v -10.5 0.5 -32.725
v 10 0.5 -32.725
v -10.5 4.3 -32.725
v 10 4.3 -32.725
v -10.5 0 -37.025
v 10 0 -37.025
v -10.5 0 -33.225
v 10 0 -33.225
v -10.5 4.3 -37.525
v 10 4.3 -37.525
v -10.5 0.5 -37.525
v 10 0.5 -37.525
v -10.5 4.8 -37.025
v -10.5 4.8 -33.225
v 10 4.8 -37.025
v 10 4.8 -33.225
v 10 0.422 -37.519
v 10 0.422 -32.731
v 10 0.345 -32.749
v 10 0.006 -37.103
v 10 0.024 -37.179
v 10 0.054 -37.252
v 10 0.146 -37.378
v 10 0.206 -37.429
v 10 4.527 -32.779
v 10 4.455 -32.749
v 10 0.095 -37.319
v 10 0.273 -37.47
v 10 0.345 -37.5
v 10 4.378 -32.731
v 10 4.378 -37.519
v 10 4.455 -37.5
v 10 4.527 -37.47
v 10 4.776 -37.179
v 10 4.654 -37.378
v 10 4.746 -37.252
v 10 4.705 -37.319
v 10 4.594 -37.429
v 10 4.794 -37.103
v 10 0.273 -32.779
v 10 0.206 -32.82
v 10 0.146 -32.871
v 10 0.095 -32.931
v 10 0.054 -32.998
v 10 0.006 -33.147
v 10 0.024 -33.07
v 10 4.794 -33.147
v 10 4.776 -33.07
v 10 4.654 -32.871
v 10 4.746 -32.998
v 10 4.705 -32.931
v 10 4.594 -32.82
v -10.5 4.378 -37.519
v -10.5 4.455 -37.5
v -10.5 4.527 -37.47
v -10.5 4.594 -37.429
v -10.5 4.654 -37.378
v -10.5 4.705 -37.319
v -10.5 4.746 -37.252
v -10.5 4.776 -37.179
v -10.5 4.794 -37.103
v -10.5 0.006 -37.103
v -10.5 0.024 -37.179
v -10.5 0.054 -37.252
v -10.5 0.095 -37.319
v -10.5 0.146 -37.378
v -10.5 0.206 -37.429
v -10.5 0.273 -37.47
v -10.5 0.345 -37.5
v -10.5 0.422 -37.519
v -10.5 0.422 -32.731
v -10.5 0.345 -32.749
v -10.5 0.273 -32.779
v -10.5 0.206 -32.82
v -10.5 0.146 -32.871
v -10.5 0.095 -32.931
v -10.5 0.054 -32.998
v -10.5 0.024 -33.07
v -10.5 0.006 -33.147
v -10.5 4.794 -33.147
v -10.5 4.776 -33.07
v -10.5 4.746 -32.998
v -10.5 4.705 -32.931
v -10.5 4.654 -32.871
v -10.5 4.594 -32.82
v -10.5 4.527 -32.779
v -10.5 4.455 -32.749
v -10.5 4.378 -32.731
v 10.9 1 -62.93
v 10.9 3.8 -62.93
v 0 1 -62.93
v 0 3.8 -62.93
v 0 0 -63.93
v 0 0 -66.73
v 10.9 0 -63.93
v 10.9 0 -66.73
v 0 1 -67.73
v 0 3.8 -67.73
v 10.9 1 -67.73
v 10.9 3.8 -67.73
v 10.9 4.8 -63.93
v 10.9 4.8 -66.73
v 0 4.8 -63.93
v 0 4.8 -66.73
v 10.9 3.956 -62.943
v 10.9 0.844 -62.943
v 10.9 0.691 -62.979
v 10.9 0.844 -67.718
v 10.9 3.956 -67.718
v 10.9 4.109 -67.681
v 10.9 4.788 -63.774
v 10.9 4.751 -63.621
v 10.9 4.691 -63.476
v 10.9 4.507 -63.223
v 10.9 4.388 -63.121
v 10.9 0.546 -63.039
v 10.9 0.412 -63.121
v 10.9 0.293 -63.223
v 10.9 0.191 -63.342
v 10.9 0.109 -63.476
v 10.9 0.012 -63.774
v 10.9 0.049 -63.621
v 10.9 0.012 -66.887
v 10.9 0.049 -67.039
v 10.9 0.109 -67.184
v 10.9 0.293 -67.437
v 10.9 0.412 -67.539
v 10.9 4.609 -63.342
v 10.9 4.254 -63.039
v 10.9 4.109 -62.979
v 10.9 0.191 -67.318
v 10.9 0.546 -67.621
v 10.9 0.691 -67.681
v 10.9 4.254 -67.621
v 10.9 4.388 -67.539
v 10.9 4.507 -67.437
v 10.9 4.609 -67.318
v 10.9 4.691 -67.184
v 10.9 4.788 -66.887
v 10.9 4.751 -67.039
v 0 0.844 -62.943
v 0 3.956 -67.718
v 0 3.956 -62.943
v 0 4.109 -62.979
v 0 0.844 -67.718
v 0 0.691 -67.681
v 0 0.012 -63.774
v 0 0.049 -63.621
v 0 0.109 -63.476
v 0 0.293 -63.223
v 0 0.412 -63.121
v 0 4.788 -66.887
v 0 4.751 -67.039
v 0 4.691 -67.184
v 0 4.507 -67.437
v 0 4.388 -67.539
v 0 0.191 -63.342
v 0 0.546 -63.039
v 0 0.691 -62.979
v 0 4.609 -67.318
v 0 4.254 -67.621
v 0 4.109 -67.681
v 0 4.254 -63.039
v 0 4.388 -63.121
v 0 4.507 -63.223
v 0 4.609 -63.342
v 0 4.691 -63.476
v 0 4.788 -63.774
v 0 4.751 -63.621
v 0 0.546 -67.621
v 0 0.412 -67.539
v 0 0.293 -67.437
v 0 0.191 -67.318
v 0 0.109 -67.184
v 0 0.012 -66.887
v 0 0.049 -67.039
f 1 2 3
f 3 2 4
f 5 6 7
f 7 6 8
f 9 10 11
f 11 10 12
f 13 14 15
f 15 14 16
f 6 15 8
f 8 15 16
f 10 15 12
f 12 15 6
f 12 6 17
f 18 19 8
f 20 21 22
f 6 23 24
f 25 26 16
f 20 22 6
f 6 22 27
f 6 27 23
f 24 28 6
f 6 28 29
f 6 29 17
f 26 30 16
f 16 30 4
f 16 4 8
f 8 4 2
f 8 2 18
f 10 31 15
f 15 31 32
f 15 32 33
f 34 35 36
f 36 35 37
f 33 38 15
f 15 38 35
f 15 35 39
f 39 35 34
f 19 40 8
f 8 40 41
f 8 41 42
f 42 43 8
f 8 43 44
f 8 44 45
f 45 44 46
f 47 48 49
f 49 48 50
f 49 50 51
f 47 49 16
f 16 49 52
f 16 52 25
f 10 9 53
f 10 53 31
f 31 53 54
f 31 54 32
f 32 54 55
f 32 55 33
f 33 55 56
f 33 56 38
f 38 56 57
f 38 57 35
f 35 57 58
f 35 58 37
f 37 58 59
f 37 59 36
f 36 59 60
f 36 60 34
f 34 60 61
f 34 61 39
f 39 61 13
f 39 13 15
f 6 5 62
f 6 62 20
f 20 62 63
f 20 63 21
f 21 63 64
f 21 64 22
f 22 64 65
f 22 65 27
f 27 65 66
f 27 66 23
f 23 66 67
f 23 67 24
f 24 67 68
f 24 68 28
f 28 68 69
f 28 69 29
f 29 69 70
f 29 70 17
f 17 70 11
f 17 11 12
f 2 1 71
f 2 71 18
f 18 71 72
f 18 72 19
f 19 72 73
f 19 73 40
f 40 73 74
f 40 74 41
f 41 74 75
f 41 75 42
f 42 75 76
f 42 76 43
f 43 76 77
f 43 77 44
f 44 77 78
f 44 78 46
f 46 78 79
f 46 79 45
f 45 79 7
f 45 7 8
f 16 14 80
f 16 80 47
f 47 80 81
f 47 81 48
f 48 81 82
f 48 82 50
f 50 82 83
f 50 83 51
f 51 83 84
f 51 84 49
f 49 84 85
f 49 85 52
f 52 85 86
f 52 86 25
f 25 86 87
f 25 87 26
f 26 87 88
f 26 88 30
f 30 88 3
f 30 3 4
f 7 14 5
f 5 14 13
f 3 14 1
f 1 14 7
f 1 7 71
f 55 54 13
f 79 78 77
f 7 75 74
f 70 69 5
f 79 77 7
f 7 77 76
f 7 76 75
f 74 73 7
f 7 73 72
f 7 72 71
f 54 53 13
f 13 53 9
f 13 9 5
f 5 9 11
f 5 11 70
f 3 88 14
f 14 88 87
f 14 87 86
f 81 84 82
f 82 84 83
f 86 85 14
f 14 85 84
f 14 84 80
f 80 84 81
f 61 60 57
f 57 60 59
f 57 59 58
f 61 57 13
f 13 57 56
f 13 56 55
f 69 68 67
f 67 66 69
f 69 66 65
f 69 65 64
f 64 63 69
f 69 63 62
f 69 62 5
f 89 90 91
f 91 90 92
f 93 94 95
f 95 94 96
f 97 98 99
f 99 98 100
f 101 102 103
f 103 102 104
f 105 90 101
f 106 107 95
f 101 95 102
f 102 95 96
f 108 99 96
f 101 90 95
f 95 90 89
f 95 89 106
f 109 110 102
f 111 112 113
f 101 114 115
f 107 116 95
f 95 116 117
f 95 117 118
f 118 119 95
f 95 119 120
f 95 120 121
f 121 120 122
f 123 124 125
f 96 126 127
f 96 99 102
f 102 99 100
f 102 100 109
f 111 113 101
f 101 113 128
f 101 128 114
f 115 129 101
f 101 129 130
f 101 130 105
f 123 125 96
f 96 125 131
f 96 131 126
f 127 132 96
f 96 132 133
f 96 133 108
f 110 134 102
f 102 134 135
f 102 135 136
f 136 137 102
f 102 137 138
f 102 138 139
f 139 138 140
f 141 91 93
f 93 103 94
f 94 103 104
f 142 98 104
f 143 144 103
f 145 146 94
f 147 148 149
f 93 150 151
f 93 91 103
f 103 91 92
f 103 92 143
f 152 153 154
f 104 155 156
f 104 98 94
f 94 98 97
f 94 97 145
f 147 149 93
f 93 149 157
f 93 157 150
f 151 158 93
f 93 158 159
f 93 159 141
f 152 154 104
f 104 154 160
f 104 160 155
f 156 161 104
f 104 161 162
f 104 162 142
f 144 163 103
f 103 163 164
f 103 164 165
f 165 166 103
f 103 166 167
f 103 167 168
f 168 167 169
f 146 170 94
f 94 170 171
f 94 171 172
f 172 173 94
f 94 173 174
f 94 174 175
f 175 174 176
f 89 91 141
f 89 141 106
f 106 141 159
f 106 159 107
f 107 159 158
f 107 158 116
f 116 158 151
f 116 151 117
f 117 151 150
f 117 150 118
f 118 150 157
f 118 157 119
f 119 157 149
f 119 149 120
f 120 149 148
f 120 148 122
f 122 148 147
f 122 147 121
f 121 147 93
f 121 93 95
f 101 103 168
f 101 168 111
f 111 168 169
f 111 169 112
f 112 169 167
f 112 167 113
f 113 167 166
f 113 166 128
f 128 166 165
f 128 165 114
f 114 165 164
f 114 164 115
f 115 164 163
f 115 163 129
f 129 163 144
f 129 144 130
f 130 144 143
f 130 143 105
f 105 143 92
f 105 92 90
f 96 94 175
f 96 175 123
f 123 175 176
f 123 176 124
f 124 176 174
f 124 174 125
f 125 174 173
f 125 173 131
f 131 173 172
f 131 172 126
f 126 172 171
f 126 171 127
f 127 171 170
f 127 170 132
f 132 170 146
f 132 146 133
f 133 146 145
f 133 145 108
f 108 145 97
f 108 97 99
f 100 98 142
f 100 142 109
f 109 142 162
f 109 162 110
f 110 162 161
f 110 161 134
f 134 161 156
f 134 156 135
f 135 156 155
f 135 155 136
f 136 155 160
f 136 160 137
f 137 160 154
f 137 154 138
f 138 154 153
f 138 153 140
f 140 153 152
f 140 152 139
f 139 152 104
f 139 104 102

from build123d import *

# Parameters (mm, degrees)
SKETCH_1_R          = 4.9
SKETCH_1_W          = 5
SKETCH_1_H          = 5
EXTRUDE_1_DEPTH     = 5
SKETCH_2_W          = 10
SKETCH_2_H          = 5
EXTRUDE_2_DEPTH     = 5
SKETCH_3_R          = 5.914940822
CUT_EXTRUDE_1_DEPTH = 10
CUT_EXTRUDE_2_DEPTH = 10
SKETCH_5_W          = 4.8
SKETCH_5_H          = 4.8
EXTRUDE_3_DEPTH     = 10
SKETCH_5_W_2        = 4.6
SKETCH_5_H_2        = 4.6
EXTRUDE_3_2_DEPTH   = 10
SKETCH_5_W_3        = 4.5
SKETCH_5_H_3        = 4.5
EXTRUDE_3_3_DEPTH   = 10
FILLET_1_R          = 0.5
FILLET_2_R          = 0.5
FILLET_3_R          = 0.5
FILLET_4_R          = 0.5
SKETCH_6_W          = 4.9
SKETCH_6_H          = 4.9
EXTRUDE_4_DEPTH     = 20.5
FILLET_5_R          = 1
EXTRUDE_5_DEPTH     = 10.5
SKETCH_9_R          = 3.402598628
CUT_EXTRUDE_3_DEPTH = 10.5
SKETCH_10_R         = 4.357418538
CUT_EXTRUDE_4_DEPTH = 10.5
SKETCH_11_R         = 4.197019633
CUT_EXTRUDE_5_DEPTH = 100.5
SKETCH_12_W         = 4.8
SKETCH_12_H         = 4.8
EXTRUDE_6_DEPTH     = 10.9
FILLET_6_R          = 1


with BuildPart() as part:
    # 草图1 → 凸台-拉伸1 (new body)
    with BuildSketch(Plane(origin=(0, 0, 0), x_dir=(1, 0, 0), z_dir=(0, 1, 0))):
        with Locations((-9.777161154, 17.932244479)):
            Circle(SKETCH_1_R)
        with Locations((-9.777161154, 17.932244479)):
            Rectangle(SKETCH_1_W, SKETCH_1_H, mode=Mode.SUBTRACT)
    extrude(amount=EXTRUDE_1_DEPTH)

    # 草图3 → 切除-拉伸1 (cut)
    with BuildSketch(Plane(origin=(0, 5, 0), x_dir=(1, 0, 0), z_dir=(0, 1, 0))):
        with Locations((-9.777161154, 17.932244479)):
            Circle(SKETCH_3_R)
    extrude(amount=-CUT_EXTRUDE_1_DEPTH, mode=Mode.SUBTRACT)


with BuildPart() as body_2:
    # 草图2 → 凸台-拉伸2 (new body)
    with BuildSketch(Plane(origin=(0, 0, 0), x_dir=(1, 0, 0), z_dir=(0, 1, 0))):
        with Locations((-15.49352073, 27.026927295)):
            Rectangle(SKETCH_2_W, SKETCH_2_H)
    extrude(amount=EXTRUDE_2_DEPTH)

    # 草图4 → 切除-拉伸2 (cut)
    with BuildSketch(Plane.ZY.offset(20.49352073)):
        Polygon((-29.526927295, 4.9), (-29.526927295, 5), (-24.526927295, 5), (-24.526927295, 0), (-24.626927295, 0), (-24.626927295, 4.9), align=None)
    extrude(amount=-CUT_EXTRUDE_2_DEPTH, mode=Mode.SUBTRACT)

    # 圆角1
    fillet_1_edges = [body_2.edges().sort_by_distance(p)[0] for p in [
        (-15.49352073, 0, -24.626927295),
        (-15.49352073, 4.9, -24.626927295),
        (-15.49352073, 4.9, -29.526927295),
        (-15.49352073, 0, -29.526927295),
    ]]
    fillet(fillet_1_edges, radius=FILLET_1_R)

    # 草图6 → 凸台-拉伸4 (add)
    with BuildSketch(Plane(origin=(-10.49352073, 0, 0), x_dir=(0, 0, -1), z_dir=(1, 0, 0))):
        with Locations((27.076927295, 2.45)):
            Rectangle(SKETCH_6_W, SKETCH_6_H)
    extrude(amount=EXTRUDE_4_DEPTH)

    # 圆角5
    fillet_5_edges = [body_2.edges().sort_by_distance(p)[0] for p in [
        (-0.24352073, 0, -24.626927295),
        (-0.24352073, 4.9, -29.526927295),
        (-0.24352073, 0, -29.526927295),
        (-0.24352073, 4.9, -24.626927295),
    ]]
    fillet(fillet_5_edges, radius=FILLET_5_R)

    # 草图11 → 切除-拉伸5 (cut)
    with BuildSketch(Plane.ZY.offset(20.49352073)):
        with Locations((-27.149876741, 2.428663145)):
            Circle(SKETCH_11_R)
    extrude(amount=-CUT_EXTRUDE_5_DEPTH, mode=Mode.SUBTRACT)


with BuildPart() as body_2_2:
    # 草图5 → 凸台-拉伸3 (new body)
    with BuildSketch(Plane(origin=(0, 0, 0), x_dir=(0, 0, -1), z_dir=(1, 0, 0))):
        with Locations((35.124788923, 2.4)):
            Rectangle(SKETCH_5_W, SKETCH_5_H)
    extrude(amount=EXTRUDE_3_DEPTH)

    # 圆角2
    fillet_2_edges = [body_2_2.edges().sort_by_distance(p)[0] for p in [
        (5, 4.8, -32.724788923),
        (5, 4.8, -37.524788923),
        (5, 0, -37.524788923),
        (5, 0, -32.724788923),
    ]]
    fillet(fillet_2_edges, radius=FILLET_2_R)

    # 草图8 → 凸台-拉伸5 (add)
    with BuildSketch(Plane.ZY):
        with BuildLine():
            Line((-33.224788923, 4.8), (-37.024788923, 4.8))
            ThreePointArc((-37.024788923, 4.8), (-37.378342314, 4.653553391), (-37.524788923, 4.3))
            Line((-37.524788923, 4.3), (-37.524788923, 0.5))
            ThreePointArc((-37.524788923, 0.5), (-37.378342314, 0.146446609), (-37.024788923, 0))
            Line((-37.024788923, 0), (-33.224788923, 0))
            ThreePointArc((-33.224788923, 0), (-32.871235532, 0.146446609), (-32.724788923, 0.5))
            Line((-32.724788923, 0.5), (-32.724788923, 4.3))
            ThreePointArc((-32.724788923, 4.3), (-32.871235532, 4.653553391), (-33.224788923, 4.8))
        make_face()
    extrude(amount=EXTRUDE_5_DEPTH)


with BuildPart() as body_3:
    # 草图5 → Extrude 3 2 (new body)
    with BuildSketch(Plane(origin=(0, 0, 0), x_dir=(0, 0, -1), z_dir=(1, 0, 0))):
        with Locations((43.904383403, 2.3)):
            Rectangle(SKETCH_5_W_2, SKETCH_5_H_2)
    extrude(amount=EXTRUDE_3_2_DEPTH)

    # 圆角3
    fillet_3_edges = [body_3.edges().sort_by_distance(p)[0] for p in [
        (5, 4.6, -41.604383403),
        (5, 4.6, -46.204383403),
        (5, 0, -46.204383403),
        (5, 0, -41.604383403),
    ]]
    fillet(fillet_3_edges, radius=FILLET_3_R)

    # 草图10 → 切除-拉伸4 (cut)
    with BuildSketch(Plane.ZY):
        with Locations((-43.711928748, 2.423135274)):
            Circle(SKETCH_10_R)
    extrude(amount=-CUT_EXTRUDE_4_DEPTH, mode=Mode.SUBTRACT)


with BuildPart() as body_4:
    # 草图5 → Extrude 3 3 (new body)
    with BuildSketch(Plane(origin=(0, 0, 0), x_dir=(0, 0, -1), z_dir=(1, 0, 0))):
        with Locations((50.920405069, 2.25)):
            Rectangle(SKETCH_5_W_3, SKETCH_5_H_3)
    extrude(amount=EXTRUDE_3_3_DEPTH)

    # 圆角4
    fillet_4_edges = [body_4.edges().sort_by_distance(p)[0] for p in [
        (5, 4.5, -48.670405069),
        (5, 4.5, -53.170405069),
        (5, 0, -53.170405069),
        (5, 0, -48.670405069),
    ]]
    fillet(fillet_4_edges, radius=FILLET_4_R)

    # 草图9 → 切除-拉伸3 (cut)
    with BuildSketch(Plane.ZY):
        with Locations((-50.9868081, 2.355561391)):
            Circle(SKETCH_9_R)
    extrude(amount=-CUT_EXTRUDE_3_DEPTH, mode=Mode.SUBTRACT)


with BuildPart() as body_2_3:
    # 草图12 → 凸台-拉伸6 (new body)
    with BuildSketch(Plane(origin=(0, 0, 0), x_dir=(0, 0, -1), z_dir=(1, 0, 0))):
        with Locations((65.330249397, 2.4)):
            Rectangle(SKETCH_12_W, SKETCH_12_H)
    extrude(amount=EXTRUDE_6_DEPTH)

    # 圆角6
    fillet_6_edges = [body_2_3.edges().sort_by_distance(p)[0] for p in [
        (5.45, 4.8, -62.930249397),
        (5.45, 4.8, -67.730249397),
        (5.45, 0, -67.730249397),
        (5.45, 0, -62.930249397),
    ]]
    fillet(fillet_6_edges, radius=FILLET_6_R)


solid = Compound([body_2_2.part, body_2_3.part])
